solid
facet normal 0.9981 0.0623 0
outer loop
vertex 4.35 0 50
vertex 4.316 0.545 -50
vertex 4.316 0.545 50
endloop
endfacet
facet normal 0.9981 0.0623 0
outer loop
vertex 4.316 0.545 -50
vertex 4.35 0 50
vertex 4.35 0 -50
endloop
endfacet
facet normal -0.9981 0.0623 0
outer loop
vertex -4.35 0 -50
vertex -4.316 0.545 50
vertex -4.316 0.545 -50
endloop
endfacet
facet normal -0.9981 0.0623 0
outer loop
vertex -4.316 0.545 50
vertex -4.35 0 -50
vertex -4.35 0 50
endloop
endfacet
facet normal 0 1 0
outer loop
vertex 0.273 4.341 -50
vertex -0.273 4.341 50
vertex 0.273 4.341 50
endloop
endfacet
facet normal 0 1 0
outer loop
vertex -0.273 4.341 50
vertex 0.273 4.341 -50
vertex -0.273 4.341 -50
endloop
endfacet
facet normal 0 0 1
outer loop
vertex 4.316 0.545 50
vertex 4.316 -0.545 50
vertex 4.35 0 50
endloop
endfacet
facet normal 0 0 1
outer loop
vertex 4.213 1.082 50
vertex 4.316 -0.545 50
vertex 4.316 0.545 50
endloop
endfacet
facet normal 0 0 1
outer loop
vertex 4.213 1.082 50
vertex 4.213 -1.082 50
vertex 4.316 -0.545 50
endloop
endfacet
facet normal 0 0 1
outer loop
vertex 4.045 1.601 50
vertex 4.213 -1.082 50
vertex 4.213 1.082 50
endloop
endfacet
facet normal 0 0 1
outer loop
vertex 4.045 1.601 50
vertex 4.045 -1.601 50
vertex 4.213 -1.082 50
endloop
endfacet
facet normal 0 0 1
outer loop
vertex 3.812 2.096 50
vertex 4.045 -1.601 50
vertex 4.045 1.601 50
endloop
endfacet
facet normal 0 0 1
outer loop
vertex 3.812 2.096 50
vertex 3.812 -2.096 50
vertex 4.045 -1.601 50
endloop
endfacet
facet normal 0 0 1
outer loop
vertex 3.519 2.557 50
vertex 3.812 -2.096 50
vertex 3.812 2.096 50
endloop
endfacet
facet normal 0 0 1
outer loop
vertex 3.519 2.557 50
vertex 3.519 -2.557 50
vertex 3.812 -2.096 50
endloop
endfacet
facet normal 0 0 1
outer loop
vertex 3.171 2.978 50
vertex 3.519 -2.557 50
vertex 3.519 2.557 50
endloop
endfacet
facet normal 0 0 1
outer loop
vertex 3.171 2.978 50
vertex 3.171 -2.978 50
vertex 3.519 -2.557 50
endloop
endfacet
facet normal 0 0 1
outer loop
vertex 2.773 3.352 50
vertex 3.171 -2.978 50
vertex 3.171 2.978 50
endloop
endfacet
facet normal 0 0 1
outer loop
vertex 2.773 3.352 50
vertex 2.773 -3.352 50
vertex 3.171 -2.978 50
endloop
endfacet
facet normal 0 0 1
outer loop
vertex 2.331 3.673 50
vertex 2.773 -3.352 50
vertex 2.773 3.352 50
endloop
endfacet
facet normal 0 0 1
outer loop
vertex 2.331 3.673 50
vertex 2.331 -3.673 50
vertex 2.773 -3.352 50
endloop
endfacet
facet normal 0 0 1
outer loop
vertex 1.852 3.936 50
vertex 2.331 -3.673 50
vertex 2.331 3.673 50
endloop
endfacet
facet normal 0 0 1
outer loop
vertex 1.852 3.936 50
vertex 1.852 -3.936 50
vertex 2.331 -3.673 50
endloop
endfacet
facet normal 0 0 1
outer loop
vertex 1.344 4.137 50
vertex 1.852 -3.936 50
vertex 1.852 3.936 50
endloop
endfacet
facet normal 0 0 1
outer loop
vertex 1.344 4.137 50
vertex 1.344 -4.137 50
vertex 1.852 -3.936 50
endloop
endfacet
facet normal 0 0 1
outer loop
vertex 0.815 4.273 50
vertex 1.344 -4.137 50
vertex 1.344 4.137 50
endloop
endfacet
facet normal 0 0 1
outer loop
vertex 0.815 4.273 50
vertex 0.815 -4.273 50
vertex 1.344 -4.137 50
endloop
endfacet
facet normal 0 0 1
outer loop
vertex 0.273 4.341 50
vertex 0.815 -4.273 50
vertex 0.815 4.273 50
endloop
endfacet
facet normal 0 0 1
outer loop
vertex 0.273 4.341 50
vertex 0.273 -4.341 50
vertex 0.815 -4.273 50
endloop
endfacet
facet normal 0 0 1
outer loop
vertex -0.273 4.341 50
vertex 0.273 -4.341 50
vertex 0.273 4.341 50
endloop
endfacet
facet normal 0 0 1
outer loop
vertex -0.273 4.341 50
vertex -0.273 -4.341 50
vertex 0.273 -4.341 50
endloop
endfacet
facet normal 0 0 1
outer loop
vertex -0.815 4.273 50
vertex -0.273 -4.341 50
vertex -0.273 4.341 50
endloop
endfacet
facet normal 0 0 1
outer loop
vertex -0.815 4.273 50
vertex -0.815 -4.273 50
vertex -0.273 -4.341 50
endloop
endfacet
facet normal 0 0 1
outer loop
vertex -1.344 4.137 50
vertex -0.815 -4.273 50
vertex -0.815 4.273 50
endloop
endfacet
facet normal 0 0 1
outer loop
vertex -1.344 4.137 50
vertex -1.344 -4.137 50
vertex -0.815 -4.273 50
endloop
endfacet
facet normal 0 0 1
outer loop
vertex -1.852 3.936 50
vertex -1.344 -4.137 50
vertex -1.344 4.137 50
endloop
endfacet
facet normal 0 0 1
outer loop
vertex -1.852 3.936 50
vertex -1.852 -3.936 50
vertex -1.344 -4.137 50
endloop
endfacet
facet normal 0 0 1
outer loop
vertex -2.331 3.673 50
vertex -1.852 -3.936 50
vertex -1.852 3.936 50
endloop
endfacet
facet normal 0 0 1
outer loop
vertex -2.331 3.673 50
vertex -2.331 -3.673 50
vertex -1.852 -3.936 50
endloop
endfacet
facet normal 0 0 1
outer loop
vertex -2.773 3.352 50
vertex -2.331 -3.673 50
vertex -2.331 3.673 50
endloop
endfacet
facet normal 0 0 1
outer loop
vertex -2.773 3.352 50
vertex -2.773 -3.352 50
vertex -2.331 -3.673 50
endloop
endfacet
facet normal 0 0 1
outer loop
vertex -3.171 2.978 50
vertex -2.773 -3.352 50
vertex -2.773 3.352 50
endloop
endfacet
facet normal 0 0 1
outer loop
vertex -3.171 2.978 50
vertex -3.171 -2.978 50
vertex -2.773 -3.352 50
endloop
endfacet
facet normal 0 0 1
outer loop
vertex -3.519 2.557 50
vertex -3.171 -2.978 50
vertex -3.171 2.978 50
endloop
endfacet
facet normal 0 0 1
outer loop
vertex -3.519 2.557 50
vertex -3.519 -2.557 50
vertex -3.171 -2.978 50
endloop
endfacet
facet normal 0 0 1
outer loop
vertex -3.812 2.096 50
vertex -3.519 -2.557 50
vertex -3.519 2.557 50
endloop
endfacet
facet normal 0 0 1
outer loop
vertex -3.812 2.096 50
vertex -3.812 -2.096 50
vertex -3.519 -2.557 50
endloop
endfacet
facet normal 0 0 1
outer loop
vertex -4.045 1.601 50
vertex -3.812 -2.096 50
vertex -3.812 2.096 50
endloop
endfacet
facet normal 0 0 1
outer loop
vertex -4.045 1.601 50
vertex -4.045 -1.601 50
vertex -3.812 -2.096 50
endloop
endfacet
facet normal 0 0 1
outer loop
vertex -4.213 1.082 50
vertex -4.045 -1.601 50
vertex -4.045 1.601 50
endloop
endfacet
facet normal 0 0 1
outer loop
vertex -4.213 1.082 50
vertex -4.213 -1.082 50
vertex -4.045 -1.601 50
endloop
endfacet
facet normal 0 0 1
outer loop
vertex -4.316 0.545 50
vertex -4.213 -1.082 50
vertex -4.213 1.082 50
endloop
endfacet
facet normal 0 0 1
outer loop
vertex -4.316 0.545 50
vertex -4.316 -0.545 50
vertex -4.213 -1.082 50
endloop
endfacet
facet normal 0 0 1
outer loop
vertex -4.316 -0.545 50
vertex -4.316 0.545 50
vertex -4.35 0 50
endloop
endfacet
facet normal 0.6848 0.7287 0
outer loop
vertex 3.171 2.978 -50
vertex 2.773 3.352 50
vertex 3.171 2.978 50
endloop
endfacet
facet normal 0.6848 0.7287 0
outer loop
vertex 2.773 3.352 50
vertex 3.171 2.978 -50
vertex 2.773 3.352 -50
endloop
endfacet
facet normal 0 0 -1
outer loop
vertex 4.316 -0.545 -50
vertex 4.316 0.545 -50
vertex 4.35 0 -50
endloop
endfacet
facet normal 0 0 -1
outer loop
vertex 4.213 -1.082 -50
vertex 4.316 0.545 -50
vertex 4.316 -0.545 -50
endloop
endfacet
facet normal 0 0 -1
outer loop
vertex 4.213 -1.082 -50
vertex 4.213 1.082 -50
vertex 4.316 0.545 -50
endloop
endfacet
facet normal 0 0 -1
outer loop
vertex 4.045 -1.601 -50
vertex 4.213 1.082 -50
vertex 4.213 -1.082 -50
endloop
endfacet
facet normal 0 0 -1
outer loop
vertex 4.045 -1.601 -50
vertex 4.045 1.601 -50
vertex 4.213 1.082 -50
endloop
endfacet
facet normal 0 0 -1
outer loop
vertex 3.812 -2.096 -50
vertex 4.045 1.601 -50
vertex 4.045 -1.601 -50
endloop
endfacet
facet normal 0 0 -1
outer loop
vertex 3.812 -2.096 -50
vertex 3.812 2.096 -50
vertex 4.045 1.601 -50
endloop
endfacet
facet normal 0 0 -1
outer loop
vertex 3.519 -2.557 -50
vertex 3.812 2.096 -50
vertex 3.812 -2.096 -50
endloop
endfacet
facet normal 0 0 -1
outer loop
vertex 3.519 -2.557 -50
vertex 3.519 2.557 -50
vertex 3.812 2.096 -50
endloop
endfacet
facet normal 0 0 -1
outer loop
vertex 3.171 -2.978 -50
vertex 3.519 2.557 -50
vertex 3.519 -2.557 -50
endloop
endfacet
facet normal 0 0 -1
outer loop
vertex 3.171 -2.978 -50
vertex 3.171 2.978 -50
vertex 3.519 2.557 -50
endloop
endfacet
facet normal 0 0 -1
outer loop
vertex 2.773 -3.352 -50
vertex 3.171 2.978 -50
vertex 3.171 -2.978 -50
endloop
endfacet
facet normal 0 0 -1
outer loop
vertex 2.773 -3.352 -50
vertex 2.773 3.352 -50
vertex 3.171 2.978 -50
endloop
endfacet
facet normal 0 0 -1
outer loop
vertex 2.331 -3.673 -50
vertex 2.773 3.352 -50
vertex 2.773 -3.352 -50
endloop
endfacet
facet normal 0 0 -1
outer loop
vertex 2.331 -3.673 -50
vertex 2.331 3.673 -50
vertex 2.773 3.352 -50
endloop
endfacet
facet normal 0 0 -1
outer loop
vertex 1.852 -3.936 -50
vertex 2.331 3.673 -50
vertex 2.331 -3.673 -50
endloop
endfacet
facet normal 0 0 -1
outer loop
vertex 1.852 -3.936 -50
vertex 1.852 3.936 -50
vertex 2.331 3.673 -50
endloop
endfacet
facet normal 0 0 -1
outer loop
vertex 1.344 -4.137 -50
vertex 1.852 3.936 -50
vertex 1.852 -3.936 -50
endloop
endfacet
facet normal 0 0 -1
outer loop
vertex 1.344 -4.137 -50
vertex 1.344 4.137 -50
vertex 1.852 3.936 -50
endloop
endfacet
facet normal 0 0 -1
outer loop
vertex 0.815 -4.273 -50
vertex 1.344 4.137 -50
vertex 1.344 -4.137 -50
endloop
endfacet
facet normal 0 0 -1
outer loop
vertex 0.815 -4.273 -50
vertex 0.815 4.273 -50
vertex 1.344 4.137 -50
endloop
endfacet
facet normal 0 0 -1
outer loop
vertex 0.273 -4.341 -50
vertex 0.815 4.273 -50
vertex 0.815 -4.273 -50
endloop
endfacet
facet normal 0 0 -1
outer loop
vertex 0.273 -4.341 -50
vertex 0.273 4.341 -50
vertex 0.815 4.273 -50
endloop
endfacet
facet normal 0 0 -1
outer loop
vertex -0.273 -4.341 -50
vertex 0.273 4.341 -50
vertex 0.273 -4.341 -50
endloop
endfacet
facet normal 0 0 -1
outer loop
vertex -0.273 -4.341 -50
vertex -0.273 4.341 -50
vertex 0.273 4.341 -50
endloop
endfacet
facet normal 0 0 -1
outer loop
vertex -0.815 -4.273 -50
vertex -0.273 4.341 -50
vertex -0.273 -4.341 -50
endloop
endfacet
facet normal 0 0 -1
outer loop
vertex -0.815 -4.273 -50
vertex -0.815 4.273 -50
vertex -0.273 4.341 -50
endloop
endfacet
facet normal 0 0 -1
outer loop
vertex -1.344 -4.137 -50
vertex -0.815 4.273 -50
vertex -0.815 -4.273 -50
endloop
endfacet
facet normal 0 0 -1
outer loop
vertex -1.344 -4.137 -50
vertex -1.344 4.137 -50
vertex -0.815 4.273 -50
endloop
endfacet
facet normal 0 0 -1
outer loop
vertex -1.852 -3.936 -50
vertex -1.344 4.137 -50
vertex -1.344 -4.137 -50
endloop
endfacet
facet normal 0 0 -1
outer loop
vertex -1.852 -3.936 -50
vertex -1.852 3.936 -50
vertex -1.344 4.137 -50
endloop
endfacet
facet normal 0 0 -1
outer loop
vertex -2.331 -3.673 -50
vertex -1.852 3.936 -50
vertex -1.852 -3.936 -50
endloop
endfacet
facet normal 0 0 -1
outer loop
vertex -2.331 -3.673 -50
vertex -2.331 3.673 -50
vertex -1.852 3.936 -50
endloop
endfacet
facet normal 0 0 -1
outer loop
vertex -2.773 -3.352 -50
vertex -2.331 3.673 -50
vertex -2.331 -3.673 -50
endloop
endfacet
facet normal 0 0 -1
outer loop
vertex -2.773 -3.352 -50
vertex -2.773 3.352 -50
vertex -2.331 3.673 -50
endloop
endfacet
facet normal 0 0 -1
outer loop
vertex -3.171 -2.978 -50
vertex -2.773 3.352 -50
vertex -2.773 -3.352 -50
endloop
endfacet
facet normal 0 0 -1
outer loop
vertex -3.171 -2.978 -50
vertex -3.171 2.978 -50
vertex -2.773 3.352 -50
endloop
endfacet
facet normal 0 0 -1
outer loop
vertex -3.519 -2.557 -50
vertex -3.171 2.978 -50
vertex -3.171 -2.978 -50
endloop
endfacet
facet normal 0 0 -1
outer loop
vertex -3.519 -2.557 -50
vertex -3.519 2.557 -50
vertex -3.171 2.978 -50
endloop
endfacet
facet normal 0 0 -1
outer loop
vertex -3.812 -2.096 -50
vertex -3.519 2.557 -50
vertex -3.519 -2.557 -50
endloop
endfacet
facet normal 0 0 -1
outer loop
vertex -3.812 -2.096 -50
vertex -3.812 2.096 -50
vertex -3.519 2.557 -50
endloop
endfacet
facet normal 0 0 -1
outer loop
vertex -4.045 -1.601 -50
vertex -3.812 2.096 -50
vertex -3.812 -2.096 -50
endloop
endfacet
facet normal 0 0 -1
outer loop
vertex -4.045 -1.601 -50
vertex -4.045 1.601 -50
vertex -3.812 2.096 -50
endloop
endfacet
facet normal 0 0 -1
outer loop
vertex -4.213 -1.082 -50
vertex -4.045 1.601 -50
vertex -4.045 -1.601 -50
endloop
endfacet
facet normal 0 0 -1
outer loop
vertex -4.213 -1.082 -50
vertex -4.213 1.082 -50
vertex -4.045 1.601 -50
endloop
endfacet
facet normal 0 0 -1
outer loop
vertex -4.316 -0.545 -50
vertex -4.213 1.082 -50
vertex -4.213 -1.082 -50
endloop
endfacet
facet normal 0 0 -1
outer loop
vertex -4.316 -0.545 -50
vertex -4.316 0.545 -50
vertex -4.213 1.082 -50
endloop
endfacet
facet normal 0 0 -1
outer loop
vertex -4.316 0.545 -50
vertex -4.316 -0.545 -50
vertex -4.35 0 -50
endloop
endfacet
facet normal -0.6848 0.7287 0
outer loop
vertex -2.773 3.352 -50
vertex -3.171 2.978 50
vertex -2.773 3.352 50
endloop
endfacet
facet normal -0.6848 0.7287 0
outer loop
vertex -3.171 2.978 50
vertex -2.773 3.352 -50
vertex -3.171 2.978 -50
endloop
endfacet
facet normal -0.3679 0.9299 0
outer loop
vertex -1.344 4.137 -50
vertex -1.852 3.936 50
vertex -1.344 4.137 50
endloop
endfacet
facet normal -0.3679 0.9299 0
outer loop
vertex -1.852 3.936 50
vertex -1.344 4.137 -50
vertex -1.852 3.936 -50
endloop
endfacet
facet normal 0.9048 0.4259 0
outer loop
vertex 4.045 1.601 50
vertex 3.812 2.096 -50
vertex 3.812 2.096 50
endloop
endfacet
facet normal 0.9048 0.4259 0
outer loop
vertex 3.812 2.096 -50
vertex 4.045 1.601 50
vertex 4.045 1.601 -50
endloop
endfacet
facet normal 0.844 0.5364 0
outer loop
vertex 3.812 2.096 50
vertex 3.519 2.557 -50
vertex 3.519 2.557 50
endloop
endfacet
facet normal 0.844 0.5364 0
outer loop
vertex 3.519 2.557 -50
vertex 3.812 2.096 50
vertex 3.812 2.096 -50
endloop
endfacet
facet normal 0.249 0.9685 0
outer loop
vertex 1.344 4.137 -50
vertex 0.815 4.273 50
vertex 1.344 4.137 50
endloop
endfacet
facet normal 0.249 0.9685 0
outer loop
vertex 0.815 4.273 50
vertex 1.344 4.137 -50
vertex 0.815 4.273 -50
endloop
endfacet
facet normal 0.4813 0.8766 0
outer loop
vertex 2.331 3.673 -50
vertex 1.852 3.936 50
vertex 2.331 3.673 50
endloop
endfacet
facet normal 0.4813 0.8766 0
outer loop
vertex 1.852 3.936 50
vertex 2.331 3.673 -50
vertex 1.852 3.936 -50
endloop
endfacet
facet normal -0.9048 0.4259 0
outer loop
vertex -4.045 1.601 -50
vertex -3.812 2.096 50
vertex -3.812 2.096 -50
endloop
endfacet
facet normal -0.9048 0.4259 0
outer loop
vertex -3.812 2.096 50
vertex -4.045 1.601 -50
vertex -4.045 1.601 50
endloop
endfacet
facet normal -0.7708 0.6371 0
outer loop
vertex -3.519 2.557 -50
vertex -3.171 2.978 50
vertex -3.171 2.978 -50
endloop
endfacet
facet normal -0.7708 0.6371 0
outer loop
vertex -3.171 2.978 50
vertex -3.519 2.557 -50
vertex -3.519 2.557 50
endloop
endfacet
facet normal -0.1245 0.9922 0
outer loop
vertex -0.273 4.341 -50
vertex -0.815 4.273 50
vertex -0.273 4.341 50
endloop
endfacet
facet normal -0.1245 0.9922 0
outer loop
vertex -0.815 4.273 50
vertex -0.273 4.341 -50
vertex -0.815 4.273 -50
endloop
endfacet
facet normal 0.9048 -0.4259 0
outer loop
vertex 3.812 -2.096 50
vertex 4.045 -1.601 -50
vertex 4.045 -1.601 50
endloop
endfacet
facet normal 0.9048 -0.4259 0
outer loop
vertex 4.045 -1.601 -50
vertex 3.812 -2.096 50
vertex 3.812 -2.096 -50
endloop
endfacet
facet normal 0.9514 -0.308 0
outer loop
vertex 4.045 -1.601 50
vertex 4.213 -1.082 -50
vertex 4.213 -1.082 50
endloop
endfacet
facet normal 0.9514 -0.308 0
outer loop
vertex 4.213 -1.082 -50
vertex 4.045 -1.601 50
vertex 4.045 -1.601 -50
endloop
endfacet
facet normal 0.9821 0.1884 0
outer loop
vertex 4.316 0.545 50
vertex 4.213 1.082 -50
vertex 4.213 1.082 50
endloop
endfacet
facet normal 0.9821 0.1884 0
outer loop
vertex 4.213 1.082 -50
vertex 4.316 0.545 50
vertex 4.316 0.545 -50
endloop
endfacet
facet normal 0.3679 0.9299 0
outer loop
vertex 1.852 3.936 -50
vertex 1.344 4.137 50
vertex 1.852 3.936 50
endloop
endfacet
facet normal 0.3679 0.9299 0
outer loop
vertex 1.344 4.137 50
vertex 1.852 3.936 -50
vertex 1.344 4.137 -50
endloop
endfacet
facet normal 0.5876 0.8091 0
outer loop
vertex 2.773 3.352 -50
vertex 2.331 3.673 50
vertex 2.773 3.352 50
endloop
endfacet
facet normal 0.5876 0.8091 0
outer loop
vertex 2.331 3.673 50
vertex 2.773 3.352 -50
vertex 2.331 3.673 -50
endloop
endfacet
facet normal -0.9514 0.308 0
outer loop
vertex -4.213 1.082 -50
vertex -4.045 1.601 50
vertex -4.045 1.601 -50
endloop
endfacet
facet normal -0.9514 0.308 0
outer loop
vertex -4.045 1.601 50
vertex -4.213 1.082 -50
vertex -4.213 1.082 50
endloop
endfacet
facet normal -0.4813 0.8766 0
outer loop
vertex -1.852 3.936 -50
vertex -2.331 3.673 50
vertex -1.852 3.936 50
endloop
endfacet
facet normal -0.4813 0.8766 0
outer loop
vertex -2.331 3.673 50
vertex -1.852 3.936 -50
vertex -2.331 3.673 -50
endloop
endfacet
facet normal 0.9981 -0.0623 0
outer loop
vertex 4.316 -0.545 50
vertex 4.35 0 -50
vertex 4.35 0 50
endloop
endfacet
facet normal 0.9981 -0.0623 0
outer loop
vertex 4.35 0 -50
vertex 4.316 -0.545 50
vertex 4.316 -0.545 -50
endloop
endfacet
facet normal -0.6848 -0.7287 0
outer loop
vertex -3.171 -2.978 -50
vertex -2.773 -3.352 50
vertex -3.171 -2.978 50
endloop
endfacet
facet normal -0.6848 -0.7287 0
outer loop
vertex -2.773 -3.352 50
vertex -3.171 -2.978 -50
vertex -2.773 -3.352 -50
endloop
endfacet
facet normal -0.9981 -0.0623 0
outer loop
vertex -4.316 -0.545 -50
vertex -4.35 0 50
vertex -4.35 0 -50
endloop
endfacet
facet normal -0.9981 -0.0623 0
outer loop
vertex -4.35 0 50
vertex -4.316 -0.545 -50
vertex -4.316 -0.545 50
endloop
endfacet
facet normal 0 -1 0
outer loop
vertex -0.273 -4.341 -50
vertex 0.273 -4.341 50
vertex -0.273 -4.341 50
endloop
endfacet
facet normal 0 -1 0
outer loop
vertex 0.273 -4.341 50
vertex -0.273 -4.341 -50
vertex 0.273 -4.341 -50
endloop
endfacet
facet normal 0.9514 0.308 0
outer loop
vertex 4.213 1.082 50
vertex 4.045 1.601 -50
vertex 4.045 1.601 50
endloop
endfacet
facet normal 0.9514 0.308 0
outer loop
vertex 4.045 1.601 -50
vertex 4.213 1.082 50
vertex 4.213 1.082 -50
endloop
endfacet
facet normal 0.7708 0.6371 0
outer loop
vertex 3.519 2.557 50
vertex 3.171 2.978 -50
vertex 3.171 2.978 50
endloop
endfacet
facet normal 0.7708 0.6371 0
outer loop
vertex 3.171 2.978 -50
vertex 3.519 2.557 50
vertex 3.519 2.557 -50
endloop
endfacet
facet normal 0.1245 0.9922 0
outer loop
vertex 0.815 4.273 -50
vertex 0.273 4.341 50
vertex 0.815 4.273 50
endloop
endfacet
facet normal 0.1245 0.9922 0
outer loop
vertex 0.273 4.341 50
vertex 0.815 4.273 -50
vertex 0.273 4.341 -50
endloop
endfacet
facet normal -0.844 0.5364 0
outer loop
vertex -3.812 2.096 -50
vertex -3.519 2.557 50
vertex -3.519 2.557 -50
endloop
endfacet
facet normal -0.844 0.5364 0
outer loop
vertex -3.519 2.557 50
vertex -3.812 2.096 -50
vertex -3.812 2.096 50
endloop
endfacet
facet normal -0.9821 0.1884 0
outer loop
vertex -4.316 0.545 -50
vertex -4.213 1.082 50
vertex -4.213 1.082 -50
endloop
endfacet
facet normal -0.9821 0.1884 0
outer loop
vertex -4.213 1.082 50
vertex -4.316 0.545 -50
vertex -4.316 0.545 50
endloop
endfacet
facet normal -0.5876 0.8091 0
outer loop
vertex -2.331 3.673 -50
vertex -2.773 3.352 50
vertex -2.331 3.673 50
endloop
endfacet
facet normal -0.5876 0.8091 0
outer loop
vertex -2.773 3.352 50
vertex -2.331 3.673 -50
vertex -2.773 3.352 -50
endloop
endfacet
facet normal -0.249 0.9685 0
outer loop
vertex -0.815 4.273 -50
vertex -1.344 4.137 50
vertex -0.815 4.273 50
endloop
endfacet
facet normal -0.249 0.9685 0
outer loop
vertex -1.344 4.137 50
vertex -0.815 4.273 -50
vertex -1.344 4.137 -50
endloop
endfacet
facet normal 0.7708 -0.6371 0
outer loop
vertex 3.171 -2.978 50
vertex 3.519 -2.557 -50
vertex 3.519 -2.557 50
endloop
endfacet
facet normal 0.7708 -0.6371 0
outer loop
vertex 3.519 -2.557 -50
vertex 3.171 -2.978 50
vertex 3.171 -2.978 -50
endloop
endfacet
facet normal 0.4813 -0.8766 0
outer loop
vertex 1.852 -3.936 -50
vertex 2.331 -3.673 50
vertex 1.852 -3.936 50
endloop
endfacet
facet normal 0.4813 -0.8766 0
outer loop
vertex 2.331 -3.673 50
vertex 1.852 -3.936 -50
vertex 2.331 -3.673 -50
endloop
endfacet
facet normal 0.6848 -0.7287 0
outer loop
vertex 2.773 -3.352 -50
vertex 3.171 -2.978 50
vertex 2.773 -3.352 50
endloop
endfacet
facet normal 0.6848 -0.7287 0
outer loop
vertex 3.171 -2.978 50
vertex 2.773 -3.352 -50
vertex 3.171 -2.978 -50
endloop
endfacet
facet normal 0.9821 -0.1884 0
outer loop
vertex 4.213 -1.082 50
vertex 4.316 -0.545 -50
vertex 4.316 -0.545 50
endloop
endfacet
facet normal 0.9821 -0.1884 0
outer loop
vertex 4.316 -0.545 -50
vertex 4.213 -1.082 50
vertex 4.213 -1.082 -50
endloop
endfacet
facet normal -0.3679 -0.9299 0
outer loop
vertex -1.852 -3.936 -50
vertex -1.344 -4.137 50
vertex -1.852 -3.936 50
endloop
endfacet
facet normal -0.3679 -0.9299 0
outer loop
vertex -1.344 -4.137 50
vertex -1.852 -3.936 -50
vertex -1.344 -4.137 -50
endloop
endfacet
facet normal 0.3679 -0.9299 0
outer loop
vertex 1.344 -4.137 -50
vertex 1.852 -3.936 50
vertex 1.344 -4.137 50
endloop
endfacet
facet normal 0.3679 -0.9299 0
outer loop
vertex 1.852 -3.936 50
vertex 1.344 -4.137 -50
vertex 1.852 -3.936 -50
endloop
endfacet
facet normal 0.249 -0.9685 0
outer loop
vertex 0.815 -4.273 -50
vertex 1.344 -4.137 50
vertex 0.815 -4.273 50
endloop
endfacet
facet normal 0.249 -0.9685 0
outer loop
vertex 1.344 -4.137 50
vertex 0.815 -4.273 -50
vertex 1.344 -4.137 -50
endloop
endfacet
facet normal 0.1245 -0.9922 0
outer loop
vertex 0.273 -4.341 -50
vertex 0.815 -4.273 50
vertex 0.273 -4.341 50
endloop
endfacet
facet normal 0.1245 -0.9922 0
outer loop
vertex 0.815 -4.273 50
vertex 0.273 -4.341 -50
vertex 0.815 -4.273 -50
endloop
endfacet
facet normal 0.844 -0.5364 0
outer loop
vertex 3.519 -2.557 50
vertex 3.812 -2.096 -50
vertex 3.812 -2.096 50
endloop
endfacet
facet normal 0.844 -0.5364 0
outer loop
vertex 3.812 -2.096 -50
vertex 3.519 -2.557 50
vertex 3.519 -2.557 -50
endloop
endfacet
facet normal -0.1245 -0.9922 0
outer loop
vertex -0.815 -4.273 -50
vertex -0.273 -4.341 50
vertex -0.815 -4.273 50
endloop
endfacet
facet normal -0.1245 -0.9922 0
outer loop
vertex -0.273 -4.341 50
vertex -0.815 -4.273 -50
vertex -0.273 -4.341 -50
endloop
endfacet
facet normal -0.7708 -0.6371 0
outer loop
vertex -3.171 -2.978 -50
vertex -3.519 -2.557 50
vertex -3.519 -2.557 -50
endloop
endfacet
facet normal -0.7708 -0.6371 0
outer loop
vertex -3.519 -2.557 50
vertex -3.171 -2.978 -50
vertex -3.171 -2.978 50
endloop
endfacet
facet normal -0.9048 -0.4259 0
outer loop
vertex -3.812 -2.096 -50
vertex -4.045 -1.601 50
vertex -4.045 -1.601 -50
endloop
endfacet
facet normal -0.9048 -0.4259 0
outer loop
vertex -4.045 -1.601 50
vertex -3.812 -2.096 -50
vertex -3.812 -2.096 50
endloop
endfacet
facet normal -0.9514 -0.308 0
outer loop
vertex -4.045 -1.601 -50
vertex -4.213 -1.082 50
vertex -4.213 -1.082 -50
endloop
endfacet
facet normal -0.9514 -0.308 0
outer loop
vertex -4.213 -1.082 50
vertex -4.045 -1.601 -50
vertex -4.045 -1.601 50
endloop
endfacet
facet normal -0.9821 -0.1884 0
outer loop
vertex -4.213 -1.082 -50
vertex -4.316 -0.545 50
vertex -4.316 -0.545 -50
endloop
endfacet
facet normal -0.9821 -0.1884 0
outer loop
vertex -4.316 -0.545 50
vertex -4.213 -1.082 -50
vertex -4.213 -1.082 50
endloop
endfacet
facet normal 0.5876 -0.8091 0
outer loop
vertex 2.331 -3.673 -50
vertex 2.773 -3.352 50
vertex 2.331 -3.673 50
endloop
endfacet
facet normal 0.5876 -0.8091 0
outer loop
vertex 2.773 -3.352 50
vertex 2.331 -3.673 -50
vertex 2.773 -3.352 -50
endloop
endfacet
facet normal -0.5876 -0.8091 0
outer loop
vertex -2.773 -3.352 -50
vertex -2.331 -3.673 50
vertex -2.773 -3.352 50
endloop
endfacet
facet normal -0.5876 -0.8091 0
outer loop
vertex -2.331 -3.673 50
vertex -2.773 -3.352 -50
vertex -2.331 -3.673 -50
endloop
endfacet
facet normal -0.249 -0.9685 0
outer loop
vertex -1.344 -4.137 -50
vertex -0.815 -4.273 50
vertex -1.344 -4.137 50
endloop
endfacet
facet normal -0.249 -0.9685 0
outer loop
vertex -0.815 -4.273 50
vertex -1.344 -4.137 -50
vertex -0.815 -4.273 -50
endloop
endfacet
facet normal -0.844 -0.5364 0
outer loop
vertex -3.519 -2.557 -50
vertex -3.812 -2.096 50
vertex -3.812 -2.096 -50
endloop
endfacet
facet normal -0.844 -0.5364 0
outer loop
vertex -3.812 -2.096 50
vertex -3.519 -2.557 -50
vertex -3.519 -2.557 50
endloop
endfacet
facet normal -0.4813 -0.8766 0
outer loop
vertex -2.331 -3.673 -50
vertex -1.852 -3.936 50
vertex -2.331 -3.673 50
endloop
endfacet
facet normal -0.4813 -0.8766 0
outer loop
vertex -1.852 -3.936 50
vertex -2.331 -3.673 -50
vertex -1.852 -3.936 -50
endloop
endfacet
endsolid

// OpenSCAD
$fn = 50;


difference() {
	union() {
		translate(v = [0, 0, -50.0000000000]) {
			cylinder(h = 100, r = 4.3500000000);
		}
	}
	union() {
		translate(v = [0, 0, -100.0000000000]) {
			cylinder(h = 200, r = 0);
		}
	}
}
